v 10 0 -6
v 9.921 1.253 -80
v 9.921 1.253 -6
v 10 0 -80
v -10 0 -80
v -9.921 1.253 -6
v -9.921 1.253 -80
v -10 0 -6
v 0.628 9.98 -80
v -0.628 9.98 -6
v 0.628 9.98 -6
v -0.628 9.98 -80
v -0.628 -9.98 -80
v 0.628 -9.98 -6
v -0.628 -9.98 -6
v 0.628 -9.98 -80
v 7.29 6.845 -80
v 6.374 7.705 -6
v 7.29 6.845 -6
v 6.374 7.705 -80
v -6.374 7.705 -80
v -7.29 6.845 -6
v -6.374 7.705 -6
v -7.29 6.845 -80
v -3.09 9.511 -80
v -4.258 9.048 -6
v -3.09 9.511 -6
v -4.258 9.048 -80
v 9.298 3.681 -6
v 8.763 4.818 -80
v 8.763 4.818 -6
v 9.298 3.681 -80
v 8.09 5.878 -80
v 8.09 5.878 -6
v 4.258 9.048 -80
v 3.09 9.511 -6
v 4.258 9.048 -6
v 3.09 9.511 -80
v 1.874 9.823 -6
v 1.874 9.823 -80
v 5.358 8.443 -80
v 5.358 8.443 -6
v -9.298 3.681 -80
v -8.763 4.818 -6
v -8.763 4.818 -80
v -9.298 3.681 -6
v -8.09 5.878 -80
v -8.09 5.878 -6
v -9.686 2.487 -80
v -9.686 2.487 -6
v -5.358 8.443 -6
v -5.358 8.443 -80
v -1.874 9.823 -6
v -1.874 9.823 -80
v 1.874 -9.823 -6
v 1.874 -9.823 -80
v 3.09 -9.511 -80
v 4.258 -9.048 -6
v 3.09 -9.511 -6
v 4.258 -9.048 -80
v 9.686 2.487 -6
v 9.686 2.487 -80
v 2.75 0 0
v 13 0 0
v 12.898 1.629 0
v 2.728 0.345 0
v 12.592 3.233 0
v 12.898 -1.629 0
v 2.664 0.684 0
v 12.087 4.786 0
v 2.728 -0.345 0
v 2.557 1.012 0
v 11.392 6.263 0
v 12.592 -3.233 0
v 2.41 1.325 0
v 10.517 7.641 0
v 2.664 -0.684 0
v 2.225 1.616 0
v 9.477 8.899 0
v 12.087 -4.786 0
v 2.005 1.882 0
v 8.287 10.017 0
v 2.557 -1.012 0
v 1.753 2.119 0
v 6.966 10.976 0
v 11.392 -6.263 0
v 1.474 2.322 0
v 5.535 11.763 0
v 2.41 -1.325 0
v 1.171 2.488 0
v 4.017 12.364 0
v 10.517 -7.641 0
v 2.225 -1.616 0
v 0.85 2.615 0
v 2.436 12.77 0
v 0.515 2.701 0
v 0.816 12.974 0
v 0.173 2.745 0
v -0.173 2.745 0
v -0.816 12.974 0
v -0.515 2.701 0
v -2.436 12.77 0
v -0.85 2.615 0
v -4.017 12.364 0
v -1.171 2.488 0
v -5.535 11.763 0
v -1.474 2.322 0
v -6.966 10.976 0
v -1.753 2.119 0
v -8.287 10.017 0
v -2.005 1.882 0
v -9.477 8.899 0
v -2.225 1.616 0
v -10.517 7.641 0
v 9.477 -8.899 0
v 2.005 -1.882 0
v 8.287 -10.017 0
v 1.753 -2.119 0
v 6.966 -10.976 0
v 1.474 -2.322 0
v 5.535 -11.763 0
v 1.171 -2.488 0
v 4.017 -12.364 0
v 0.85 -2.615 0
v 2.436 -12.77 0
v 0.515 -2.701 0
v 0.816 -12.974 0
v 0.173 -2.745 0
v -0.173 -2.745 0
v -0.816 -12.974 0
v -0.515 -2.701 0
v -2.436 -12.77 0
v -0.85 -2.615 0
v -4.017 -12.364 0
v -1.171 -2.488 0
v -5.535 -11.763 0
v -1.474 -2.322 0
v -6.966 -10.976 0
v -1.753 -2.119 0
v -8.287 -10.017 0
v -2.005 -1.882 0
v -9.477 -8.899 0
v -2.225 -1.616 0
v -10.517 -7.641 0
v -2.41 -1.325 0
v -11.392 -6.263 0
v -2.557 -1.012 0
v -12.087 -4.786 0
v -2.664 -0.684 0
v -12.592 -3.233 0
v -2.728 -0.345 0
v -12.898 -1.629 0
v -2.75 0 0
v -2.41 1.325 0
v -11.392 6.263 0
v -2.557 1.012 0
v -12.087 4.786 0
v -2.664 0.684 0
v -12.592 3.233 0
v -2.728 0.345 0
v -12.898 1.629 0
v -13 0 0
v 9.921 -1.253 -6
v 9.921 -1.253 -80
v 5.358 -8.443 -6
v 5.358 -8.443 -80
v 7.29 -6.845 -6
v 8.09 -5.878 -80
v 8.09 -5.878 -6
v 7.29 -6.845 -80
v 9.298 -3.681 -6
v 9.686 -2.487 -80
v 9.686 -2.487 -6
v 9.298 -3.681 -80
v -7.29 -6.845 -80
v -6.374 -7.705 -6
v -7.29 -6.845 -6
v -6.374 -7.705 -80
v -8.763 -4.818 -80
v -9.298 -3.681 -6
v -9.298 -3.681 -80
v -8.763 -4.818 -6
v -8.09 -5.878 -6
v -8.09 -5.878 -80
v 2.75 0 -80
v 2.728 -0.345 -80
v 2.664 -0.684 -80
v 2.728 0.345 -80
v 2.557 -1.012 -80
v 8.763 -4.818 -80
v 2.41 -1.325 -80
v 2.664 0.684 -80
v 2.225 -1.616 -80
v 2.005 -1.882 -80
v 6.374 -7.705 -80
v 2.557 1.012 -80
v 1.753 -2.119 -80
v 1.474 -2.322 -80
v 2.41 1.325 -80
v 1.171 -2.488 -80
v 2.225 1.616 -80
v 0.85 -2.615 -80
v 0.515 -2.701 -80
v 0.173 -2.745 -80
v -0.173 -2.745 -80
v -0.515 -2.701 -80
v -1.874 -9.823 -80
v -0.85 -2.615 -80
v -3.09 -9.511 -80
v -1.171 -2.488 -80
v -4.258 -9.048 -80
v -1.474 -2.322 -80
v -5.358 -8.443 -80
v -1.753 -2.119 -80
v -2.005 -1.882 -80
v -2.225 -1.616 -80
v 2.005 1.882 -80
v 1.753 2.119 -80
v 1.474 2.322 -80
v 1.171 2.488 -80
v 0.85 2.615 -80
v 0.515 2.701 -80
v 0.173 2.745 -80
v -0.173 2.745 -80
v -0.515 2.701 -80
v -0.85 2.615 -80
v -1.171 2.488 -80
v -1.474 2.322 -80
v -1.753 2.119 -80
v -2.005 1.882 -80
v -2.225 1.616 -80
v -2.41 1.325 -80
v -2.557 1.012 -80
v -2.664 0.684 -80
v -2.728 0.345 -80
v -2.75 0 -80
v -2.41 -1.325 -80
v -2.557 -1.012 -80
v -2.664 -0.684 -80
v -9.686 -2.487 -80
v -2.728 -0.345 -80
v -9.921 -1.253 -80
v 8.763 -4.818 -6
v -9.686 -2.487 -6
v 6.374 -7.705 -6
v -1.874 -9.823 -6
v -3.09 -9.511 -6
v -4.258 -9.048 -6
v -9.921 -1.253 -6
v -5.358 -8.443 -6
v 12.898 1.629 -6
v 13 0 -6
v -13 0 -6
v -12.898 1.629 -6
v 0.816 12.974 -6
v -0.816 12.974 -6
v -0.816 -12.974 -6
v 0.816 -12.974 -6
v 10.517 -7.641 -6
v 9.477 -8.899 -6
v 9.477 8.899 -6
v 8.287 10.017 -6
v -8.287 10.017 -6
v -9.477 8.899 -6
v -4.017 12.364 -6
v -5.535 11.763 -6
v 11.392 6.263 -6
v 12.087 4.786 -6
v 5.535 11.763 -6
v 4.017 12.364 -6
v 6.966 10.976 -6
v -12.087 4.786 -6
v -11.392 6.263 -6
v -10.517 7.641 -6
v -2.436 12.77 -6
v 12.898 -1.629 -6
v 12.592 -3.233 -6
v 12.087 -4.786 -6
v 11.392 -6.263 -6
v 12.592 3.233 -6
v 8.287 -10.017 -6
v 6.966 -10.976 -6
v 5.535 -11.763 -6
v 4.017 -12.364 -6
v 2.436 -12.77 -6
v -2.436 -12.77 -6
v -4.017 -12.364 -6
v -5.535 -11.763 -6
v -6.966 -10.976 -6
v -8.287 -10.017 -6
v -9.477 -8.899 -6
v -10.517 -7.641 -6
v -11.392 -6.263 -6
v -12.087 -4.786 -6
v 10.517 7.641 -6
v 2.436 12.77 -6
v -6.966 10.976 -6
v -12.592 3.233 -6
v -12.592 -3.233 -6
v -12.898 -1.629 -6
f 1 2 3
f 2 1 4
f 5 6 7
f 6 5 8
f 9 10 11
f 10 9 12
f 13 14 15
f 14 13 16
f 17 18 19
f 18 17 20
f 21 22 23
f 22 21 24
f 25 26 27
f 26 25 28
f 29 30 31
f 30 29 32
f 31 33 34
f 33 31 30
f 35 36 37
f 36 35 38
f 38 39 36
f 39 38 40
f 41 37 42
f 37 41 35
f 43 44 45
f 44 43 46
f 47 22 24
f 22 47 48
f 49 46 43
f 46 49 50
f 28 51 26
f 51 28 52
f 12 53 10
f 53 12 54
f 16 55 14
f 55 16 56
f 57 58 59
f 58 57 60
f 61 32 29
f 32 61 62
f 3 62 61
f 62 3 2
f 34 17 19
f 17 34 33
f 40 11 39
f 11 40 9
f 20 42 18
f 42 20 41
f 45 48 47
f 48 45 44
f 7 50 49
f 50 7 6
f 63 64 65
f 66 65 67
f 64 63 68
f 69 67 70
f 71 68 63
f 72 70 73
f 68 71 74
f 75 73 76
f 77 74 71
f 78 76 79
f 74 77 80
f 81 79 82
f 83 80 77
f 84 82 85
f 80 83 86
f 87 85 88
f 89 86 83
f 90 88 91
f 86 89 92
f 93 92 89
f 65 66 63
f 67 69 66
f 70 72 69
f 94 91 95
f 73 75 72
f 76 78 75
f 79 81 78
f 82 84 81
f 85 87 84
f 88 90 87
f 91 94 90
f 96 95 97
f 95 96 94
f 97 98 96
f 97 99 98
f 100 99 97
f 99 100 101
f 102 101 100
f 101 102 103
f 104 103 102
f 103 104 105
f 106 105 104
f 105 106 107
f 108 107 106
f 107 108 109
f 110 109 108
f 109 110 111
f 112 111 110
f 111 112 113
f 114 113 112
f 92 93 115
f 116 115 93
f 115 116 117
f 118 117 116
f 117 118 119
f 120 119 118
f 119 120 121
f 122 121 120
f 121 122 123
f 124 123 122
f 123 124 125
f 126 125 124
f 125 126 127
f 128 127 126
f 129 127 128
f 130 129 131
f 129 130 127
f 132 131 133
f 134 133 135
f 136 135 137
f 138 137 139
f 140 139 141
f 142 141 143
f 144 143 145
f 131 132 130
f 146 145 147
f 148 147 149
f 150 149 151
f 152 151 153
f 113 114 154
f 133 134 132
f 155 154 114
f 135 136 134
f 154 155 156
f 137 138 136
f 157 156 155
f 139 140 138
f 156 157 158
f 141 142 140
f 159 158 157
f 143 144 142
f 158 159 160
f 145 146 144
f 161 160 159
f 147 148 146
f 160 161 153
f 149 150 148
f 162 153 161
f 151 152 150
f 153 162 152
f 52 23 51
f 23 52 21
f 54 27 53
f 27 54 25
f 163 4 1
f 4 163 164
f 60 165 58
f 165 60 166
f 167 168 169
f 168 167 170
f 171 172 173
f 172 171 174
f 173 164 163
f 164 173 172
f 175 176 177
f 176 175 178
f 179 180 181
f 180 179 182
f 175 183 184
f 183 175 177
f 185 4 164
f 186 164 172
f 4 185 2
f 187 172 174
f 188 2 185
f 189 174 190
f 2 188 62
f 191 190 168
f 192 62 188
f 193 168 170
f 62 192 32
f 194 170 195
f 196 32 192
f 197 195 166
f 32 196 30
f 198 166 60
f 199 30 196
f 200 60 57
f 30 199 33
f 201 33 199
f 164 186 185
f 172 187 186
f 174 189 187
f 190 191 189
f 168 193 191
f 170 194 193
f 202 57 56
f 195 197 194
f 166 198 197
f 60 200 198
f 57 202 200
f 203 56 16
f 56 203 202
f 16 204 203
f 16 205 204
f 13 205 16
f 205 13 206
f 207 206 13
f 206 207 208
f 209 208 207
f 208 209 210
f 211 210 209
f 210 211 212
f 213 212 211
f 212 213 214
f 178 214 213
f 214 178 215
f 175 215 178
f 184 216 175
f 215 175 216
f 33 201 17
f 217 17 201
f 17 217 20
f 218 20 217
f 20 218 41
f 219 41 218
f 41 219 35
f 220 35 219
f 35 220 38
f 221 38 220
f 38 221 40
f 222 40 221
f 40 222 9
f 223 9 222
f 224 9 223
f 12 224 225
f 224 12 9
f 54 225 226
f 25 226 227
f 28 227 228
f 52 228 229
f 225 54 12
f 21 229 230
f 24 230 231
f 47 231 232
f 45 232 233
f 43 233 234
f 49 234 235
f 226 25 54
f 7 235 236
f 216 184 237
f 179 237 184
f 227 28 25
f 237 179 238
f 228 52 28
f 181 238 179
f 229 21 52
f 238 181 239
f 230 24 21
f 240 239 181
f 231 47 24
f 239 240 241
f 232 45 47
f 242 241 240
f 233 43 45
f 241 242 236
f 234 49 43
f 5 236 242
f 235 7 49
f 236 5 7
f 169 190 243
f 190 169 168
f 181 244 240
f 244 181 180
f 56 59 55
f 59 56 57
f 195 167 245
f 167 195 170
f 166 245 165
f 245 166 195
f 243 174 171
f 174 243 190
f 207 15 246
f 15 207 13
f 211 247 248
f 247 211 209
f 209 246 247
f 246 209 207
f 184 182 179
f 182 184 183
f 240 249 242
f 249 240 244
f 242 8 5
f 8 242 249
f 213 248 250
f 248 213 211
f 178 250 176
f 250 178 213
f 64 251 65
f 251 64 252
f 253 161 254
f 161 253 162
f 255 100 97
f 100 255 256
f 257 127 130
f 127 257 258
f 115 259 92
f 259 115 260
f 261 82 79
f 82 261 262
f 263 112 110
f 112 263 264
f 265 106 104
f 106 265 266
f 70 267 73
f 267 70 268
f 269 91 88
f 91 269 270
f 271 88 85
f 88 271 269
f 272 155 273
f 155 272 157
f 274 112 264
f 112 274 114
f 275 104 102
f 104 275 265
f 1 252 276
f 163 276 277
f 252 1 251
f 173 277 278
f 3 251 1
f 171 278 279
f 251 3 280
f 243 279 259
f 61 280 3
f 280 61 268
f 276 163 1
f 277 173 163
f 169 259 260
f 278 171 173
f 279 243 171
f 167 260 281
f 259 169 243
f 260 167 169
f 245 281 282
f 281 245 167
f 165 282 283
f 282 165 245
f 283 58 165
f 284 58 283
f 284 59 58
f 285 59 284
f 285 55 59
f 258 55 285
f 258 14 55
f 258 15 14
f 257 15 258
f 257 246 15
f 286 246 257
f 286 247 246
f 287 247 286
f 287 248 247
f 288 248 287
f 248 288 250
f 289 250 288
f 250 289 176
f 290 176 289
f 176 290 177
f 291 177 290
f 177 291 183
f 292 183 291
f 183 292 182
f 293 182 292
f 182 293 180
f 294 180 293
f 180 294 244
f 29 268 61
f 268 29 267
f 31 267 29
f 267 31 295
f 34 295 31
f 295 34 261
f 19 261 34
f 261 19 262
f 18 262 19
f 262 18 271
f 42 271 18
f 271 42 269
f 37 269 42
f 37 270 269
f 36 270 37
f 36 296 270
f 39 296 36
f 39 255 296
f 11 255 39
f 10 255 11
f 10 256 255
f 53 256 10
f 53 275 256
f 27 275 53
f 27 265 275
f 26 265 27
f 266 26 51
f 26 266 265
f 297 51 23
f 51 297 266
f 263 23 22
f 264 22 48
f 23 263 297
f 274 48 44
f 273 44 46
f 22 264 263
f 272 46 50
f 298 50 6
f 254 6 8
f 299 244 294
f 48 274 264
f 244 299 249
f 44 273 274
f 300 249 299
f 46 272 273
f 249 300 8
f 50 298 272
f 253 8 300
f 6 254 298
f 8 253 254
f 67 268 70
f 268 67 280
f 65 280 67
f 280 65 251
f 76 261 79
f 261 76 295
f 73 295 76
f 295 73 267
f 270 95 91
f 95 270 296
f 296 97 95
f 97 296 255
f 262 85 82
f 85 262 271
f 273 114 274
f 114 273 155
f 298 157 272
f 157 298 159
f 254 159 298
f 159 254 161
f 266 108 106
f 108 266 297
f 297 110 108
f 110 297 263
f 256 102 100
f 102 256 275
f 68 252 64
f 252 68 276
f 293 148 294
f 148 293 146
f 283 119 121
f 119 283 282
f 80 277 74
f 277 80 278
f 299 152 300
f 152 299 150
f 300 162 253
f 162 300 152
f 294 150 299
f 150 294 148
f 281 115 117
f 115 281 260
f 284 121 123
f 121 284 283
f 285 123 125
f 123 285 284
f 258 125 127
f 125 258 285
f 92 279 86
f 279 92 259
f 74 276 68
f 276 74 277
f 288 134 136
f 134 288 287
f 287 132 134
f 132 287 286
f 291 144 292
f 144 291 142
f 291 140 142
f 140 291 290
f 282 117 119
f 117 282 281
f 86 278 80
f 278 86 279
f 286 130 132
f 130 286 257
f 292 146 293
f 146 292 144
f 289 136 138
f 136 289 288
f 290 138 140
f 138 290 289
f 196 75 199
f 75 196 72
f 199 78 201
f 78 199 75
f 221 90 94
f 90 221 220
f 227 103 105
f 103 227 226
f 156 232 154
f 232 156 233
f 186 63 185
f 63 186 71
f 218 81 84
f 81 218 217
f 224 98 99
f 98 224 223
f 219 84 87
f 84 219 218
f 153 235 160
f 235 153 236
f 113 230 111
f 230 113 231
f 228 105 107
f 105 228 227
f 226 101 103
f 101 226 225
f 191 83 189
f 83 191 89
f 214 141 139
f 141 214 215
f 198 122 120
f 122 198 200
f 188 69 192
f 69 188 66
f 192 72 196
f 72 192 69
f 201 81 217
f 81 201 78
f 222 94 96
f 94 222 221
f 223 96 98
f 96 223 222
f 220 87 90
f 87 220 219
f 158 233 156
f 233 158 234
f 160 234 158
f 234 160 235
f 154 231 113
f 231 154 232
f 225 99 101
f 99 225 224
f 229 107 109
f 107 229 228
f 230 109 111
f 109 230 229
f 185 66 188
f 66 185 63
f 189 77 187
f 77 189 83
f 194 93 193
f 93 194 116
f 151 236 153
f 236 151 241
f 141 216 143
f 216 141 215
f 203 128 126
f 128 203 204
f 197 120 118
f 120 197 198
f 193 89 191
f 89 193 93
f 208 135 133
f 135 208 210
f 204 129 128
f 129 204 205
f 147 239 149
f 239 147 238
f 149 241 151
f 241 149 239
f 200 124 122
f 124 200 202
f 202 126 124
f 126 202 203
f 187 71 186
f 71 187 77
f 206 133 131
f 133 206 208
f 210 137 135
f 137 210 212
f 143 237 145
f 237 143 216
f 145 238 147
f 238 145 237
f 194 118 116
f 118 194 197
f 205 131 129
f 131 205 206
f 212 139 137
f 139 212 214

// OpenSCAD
$fn = 50;


difference() {
	union() {
		translate(v = [0, 0, -80.0000000000]) {
			cylinder(h = 80, r = 10.0000000000);
		}
		translate(v = [0, 0, -6.0000000000]) {
			cylinder(h = 6, r = 13.0000000000);
		}
	}
	union() {
		#translate(v = [0, 0, -80]) {
			cylinder(h = 80, r = 2.7500000000);
		}
	}
}
